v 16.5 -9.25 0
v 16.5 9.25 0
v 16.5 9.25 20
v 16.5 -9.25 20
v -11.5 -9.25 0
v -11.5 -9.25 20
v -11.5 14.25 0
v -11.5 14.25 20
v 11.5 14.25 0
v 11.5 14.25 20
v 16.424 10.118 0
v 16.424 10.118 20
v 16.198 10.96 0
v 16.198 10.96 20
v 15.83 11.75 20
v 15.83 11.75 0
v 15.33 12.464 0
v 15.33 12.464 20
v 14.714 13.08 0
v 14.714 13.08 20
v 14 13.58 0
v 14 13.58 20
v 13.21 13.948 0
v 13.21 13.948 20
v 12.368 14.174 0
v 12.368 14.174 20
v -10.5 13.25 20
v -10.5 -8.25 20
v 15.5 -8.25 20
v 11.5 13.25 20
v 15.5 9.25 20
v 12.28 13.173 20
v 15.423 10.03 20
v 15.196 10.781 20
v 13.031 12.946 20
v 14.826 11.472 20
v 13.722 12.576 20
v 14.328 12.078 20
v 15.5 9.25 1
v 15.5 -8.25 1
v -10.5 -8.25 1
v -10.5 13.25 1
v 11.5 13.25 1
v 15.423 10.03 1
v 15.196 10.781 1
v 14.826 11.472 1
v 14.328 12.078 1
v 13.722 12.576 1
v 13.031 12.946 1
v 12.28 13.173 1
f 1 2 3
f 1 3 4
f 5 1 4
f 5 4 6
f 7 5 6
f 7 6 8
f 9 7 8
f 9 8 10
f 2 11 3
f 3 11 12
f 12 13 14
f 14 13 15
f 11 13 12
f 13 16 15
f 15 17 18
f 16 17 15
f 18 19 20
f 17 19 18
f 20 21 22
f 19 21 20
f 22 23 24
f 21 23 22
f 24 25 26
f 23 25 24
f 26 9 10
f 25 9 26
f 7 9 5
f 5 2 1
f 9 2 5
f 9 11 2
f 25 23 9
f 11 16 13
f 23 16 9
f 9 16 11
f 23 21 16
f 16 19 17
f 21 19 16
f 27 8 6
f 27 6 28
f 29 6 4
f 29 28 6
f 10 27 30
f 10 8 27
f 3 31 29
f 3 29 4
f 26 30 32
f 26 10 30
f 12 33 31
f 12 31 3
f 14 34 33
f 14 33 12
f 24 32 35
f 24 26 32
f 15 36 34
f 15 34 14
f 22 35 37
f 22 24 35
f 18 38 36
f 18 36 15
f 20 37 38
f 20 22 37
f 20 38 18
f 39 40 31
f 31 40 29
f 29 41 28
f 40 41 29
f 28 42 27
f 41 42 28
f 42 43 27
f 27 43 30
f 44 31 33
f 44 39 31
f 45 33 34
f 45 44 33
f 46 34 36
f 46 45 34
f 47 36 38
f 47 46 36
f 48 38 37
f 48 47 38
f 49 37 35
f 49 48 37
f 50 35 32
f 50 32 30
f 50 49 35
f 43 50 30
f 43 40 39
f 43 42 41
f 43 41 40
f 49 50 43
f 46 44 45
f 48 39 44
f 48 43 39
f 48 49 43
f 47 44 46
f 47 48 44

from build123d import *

# Parameters (mm, degrees)
PAD_DEPTH   = 20
THICKNESS_T = -1


with BuildPart() as part:
    # Sketch → Pad (new body)
    with BuildSketch(Plane.XY):
        with BuildLine():
            Line((-11.5, 14.25), (11.5, 14.25))
            ThreePointArc((16.5, 9.25), (15.035534, 12.785534), (11.5, 14.25))
            Line((16.5, 9.25), (16.5, -9.25))
            Line((16.5, -9.25), (-11.5, -9.25))
            Line((-11.5, -9.25), (-11.5, 14.25))
        make_face()
    extrude(amount=PAD_DEPTH)

    # Thickness
    thickness_openings = [part.faces().sort_by_distance(p)[0] for p in [
        (2.394093, 2.412589, 20),
    ]]
    offset(amount=THICKNESS_T, openings=thickness_openings)


solid = part.part
